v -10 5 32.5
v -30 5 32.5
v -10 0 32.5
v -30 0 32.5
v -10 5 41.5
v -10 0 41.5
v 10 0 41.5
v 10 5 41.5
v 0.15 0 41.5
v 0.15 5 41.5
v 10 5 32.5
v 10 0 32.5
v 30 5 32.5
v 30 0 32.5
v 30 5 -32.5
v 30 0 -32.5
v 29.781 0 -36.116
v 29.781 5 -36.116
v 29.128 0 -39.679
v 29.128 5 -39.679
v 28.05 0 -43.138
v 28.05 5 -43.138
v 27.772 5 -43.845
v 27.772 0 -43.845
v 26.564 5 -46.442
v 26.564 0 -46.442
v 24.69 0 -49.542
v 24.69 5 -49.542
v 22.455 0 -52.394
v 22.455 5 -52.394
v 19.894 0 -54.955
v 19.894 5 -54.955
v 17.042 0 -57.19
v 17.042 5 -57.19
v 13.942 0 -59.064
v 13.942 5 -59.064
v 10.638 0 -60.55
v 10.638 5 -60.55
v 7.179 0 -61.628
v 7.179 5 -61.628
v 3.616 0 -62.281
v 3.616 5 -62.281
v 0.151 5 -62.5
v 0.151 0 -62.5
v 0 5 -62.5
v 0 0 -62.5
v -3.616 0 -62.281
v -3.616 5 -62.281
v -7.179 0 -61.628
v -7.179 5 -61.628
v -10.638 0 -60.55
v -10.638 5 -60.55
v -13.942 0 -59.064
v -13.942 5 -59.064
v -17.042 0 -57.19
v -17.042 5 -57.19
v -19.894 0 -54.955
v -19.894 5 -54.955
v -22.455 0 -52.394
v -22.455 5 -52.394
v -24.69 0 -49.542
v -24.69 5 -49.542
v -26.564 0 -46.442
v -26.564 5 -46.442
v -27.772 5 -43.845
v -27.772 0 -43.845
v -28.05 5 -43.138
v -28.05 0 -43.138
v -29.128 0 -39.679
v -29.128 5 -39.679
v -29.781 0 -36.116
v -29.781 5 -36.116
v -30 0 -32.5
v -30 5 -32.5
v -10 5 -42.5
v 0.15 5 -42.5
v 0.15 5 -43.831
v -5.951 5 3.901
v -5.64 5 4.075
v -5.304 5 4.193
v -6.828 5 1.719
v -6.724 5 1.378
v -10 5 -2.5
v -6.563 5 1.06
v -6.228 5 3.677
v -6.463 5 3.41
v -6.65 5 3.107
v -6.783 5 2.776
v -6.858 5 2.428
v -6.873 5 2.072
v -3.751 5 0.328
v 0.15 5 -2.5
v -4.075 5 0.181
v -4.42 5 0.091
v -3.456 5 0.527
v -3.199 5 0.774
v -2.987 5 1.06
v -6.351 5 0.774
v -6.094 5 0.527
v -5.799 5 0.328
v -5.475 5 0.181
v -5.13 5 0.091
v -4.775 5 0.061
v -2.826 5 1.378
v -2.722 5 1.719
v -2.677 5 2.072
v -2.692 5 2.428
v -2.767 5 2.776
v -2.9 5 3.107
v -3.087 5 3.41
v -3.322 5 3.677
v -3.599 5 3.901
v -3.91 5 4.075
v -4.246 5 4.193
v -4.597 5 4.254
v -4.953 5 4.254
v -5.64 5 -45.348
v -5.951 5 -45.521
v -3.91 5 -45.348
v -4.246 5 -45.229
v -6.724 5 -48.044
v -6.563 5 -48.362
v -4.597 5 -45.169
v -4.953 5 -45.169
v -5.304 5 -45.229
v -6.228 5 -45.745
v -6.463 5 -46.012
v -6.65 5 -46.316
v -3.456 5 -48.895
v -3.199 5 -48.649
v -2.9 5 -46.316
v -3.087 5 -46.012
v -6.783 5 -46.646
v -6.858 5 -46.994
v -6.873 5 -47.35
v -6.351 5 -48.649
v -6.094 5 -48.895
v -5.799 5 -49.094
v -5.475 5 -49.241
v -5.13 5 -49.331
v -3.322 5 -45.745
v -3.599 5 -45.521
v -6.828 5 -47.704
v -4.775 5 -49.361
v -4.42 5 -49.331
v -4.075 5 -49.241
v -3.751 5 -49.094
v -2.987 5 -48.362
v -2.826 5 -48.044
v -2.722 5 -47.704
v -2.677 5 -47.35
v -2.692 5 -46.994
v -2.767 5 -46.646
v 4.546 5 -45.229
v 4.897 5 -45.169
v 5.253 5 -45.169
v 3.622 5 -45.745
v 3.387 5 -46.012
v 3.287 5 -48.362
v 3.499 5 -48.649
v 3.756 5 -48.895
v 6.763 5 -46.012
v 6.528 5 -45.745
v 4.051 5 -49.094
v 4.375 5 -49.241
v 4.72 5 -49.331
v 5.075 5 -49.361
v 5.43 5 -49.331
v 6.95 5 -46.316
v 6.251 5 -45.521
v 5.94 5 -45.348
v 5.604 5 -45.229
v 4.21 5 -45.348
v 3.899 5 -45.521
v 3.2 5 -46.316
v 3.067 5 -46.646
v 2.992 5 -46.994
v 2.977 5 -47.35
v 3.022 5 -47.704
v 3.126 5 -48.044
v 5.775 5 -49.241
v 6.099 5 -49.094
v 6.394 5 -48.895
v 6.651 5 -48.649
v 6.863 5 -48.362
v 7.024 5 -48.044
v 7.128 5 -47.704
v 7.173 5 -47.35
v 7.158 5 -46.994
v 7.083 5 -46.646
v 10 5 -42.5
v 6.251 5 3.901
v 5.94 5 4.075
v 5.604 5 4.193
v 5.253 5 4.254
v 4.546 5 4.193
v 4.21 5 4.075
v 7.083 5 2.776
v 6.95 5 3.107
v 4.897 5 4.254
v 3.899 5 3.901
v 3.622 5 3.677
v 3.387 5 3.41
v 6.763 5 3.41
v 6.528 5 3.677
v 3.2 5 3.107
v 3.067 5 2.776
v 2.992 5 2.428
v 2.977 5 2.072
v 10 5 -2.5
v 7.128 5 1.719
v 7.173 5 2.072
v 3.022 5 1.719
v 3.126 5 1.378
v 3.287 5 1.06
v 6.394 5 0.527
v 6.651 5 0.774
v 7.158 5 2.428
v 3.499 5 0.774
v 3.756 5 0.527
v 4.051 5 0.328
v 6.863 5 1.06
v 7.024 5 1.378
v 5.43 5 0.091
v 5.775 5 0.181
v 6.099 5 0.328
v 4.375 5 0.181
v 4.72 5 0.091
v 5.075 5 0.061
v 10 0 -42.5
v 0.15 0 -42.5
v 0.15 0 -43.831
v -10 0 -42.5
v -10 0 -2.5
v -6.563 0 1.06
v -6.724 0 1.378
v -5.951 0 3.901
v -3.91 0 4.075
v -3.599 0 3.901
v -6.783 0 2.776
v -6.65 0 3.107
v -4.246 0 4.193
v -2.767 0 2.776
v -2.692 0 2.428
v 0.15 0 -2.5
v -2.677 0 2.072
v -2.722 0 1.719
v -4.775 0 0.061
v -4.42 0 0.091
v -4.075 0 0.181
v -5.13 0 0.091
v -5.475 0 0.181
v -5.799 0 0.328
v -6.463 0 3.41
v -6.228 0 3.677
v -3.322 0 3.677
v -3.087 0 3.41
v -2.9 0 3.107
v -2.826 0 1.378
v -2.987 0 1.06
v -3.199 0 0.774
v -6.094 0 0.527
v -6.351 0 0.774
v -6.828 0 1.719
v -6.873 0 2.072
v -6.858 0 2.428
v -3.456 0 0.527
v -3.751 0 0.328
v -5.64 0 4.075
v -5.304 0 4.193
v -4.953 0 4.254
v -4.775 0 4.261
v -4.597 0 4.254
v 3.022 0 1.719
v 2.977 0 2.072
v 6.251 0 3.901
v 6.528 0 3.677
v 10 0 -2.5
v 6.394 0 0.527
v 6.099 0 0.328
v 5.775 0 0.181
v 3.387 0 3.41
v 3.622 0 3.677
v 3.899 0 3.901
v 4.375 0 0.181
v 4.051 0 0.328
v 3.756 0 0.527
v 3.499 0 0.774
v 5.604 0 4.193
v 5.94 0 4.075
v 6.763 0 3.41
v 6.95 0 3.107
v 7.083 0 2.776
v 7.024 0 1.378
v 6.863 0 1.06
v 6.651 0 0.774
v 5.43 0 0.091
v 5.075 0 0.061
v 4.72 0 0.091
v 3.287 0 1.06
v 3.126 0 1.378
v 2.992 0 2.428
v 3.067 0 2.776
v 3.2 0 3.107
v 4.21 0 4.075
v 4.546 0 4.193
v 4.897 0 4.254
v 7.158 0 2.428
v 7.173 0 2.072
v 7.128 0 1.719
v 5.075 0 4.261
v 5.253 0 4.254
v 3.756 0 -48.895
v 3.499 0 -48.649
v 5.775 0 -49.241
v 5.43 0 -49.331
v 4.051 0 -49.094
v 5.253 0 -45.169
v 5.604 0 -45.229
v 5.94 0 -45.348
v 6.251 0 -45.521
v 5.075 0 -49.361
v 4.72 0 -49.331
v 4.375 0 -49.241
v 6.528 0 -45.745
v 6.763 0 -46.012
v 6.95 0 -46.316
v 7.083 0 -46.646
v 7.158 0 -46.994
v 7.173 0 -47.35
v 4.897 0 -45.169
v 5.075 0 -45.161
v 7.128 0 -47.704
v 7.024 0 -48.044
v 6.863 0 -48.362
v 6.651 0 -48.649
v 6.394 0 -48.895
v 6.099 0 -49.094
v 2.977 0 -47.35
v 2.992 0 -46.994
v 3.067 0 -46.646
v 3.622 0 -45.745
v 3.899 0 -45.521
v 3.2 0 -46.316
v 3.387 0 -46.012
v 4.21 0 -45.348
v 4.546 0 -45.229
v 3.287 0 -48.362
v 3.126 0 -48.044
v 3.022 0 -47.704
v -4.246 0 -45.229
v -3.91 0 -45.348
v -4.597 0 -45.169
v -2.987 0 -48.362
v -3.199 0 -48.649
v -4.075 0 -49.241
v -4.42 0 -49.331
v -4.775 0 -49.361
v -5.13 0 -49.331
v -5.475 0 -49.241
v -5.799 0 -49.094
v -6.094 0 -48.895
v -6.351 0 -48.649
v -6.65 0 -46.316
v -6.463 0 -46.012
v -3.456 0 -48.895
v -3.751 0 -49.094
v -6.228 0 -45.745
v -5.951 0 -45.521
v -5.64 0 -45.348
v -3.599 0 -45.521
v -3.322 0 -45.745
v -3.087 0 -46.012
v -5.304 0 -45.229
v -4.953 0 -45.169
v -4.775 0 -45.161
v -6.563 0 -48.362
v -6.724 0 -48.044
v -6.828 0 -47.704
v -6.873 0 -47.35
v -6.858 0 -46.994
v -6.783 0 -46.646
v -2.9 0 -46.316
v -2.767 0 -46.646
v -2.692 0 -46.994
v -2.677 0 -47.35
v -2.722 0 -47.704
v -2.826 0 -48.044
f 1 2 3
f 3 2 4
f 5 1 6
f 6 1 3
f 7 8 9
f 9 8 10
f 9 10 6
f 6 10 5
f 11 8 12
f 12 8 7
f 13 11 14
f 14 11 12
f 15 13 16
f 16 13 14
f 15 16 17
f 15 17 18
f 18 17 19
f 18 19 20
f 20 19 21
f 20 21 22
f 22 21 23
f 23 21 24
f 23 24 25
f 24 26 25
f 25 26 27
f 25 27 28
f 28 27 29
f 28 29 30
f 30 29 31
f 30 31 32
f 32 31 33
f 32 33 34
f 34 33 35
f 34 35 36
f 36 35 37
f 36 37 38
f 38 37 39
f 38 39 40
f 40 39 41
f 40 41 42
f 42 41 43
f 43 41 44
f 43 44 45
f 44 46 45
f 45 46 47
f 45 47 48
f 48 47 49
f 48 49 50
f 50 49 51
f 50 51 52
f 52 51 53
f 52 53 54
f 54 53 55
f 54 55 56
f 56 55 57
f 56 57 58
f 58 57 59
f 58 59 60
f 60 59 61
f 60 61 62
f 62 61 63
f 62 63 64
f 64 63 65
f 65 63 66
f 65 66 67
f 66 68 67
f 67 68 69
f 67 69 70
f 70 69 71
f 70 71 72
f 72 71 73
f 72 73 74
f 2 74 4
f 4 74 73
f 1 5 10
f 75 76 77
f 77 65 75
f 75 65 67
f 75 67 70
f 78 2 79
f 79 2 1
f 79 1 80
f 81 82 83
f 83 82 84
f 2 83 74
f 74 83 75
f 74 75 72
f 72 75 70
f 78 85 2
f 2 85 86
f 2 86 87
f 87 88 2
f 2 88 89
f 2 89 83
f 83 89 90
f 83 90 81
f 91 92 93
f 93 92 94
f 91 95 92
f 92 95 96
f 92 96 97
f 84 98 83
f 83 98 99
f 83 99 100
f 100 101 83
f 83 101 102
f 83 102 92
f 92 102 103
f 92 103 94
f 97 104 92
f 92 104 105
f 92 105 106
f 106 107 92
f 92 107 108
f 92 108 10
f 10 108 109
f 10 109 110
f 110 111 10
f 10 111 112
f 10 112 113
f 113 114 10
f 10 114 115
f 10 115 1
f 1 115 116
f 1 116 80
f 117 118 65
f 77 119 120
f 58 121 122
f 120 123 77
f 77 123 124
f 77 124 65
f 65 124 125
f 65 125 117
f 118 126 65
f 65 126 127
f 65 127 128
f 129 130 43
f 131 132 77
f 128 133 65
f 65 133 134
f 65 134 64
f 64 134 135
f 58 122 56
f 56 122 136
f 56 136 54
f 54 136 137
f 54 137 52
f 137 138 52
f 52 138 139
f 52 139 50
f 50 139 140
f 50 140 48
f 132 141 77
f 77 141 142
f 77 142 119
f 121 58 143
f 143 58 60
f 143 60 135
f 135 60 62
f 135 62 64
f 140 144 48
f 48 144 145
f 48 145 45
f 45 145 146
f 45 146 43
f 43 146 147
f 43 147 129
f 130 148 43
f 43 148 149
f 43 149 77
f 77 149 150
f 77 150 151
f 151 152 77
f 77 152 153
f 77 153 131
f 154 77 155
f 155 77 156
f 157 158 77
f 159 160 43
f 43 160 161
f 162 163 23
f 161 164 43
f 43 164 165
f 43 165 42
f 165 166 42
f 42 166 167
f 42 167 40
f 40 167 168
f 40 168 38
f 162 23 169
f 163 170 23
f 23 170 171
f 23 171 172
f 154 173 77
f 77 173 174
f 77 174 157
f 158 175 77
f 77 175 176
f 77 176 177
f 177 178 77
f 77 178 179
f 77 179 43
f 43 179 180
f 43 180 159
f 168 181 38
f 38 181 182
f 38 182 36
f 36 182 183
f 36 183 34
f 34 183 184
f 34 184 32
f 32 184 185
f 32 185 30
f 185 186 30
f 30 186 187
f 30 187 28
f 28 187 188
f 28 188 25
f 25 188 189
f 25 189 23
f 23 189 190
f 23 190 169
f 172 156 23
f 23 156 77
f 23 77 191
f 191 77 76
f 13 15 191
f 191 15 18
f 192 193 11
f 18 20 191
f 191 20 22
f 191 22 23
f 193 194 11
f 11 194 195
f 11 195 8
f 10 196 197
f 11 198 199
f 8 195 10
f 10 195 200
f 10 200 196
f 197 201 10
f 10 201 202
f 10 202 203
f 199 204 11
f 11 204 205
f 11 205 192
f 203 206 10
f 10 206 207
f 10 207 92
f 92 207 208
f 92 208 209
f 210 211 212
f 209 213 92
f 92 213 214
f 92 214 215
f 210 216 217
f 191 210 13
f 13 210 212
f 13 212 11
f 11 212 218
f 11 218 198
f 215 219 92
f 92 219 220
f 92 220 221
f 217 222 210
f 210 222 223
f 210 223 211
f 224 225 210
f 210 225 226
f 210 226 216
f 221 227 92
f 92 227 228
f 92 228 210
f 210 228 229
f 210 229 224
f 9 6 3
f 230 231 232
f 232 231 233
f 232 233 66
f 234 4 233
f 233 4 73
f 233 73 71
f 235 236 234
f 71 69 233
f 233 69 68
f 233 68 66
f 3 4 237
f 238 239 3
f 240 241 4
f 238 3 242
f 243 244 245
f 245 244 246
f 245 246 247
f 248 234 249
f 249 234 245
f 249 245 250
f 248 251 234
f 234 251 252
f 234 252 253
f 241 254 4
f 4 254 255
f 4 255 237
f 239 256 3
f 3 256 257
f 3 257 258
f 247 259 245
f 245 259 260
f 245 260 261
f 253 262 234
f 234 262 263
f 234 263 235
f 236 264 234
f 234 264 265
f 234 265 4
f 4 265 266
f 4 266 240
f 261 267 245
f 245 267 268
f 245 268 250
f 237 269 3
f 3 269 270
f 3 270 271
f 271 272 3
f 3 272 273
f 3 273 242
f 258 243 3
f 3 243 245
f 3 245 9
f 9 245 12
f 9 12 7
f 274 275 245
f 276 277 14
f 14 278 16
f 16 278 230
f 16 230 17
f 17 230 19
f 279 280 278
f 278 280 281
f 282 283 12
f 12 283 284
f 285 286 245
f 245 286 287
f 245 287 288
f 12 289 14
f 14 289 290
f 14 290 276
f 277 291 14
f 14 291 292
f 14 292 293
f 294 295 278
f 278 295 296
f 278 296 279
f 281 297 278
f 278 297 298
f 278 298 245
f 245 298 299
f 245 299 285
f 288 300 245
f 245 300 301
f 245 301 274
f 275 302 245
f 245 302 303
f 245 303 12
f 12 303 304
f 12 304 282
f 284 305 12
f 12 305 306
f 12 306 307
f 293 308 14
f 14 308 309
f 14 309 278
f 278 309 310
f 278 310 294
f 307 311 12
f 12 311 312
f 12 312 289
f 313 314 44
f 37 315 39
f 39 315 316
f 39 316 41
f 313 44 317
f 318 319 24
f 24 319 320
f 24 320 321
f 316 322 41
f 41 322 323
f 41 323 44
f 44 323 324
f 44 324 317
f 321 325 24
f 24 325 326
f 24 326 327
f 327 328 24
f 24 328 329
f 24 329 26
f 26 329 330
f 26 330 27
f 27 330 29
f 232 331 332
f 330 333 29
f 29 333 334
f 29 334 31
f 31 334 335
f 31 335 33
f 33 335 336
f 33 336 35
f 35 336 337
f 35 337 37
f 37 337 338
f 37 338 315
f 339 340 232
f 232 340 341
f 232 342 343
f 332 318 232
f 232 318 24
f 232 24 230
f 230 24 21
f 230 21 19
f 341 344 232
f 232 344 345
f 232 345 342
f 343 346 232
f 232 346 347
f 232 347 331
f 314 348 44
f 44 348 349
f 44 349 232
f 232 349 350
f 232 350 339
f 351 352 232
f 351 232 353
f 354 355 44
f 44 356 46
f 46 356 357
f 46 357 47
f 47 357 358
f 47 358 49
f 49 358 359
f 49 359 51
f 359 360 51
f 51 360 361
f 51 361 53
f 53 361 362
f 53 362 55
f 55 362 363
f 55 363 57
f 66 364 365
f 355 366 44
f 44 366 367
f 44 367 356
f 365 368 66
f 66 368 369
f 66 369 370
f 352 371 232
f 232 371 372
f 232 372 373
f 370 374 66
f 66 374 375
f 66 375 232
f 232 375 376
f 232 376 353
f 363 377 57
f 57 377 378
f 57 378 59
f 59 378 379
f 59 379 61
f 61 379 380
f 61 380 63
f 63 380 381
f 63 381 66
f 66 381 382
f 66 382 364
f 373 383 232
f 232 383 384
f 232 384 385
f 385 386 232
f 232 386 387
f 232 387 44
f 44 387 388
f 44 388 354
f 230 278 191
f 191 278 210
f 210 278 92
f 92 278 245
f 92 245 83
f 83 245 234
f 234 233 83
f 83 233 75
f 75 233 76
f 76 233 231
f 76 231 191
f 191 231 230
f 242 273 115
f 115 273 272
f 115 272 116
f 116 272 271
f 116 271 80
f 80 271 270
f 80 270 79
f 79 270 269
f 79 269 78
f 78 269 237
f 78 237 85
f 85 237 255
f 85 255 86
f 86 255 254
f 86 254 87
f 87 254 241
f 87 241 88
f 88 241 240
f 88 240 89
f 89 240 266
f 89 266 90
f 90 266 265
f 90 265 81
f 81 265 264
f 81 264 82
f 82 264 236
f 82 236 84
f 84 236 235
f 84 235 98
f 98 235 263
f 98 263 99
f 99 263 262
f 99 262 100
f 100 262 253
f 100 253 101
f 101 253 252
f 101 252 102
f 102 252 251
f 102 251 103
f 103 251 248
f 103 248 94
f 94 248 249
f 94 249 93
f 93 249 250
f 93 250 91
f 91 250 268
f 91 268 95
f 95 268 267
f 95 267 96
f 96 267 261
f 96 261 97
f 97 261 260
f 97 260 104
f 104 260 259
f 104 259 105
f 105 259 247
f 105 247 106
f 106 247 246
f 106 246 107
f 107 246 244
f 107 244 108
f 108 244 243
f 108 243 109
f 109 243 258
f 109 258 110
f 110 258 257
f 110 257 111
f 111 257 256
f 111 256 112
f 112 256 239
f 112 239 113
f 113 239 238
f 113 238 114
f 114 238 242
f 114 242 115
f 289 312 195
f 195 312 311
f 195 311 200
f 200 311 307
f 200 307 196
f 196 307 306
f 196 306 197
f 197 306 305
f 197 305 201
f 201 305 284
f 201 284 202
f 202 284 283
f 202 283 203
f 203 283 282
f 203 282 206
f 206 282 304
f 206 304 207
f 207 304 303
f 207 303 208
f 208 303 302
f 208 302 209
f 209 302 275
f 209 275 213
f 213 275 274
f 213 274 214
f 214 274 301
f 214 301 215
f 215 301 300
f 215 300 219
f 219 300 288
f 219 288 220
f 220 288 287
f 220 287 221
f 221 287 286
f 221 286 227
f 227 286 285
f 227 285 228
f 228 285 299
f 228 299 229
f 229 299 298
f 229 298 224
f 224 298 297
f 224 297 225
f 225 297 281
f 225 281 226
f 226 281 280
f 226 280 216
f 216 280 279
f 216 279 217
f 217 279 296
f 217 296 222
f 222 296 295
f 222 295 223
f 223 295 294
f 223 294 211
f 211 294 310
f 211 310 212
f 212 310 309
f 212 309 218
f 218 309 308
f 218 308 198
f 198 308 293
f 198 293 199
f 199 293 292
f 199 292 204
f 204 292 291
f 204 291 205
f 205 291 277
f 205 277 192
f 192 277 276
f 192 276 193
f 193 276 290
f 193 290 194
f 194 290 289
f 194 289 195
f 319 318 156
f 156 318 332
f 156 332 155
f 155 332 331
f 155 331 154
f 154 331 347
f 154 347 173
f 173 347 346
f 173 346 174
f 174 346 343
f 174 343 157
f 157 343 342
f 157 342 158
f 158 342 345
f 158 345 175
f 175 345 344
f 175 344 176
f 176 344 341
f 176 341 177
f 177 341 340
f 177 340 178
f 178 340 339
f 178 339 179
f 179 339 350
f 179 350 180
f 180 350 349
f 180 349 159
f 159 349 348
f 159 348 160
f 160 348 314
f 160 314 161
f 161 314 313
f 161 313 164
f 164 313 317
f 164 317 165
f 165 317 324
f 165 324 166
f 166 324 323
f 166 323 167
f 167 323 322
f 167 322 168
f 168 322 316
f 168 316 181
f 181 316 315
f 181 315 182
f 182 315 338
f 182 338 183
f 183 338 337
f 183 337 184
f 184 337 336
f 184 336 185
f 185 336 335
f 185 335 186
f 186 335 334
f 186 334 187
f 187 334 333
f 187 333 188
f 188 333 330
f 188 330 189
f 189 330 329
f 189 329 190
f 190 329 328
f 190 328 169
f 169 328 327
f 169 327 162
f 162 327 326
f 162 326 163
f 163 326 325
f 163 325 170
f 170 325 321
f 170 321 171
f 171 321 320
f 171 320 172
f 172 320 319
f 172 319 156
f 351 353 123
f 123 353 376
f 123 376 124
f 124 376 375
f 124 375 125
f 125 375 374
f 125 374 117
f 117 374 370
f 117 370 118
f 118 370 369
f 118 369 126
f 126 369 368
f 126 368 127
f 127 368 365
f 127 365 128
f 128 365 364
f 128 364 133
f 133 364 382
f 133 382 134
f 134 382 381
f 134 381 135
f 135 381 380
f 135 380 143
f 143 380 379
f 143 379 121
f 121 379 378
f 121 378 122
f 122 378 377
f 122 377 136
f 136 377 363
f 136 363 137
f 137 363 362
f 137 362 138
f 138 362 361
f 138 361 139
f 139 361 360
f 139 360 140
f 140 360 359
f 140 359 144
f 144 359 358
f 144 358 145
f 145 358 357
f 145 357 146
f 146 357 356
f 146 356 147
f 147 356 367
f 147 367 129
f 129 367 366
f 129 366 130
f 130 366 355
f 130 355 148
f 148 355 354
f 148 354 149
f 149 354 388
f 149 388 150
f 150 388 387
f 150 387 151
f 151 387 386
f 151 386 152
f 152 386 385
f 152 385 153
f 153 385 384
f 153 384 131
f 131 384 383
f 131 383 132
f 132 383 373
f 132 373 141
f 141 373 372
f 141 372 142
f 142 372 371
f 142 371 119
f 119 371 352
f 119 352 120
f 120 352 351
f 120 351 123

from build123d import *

# Parameters (mm, degrees)
SKETCH1_W               = 60
SKETCH1_H               = 65
SKETCH1_W_2             = 20
SKETCH1_H_2             = 9
BOSS_EXTRUDE1_DEPTH     = 5
SKETCH2_W               = 20
SKETCH2_H               = 40
CUT_EXTRUDE1_DEPTH      = 6
SKETCH3_R               = 2.1
CUT_EXTRUDE2_DEPTH      = 1
CUT_EXTRUDE2_DEPTH_BACK = 6


with BuildPart() as part:
    # Sketch1 → Boss-Extrude1 (new body)
    with BuildSketch(Plane(origin=(0, 0, 0), x_dir=(1, 0, 0), z_dir=(0, 1, 0))):
        Rectangle(SKETCH1_W, SKETCH1_H)
        with Locations((0, -37)):
            Rectangle(SKETCH1_W_2, SKETCH1_H_2)
        with BuildLine():
            Line((-30, 32.5), (30, 32.5))
            ThreePointArc((30, 32.5), (0, 62.5), (-30, 32.5))
        make_face()
    extrude(amount=BOSS_EXTRUDE1_DEPTH)

    # Sketch2 → Cut-Extrude1 (cut, through all)
    with BuildSketch(Plane(origin=(0, 5, 0), x_dir=(1, 0, 0), z_dir=(0, 1, 0))):
        with Locations((0, 22.5)):
            Rectangle(SKETCH2_W, SKETCH2_H)
    extrude(amount=-CUT_EXTRUDE1_DEPTH, mode=Mode.SUBTRACT)

    # Sketch3 → Cut-Extrude2 (cut, two sides)
    with BuildSketch(Plane.XZ) as cut_extrude2_sk:
        with Locations((-4.775, 2.161145618)):
            Circle(SKETCH3_R)
        with Locations((5.075, 2.161145618)):
            Circle(SKETCH3_R)
        with Locations((5.075, -47.261145618)):
            Circle(SKETCH3_R)
        with Locations((-4.775, -47.261145618)):
            Circle(SKETCH3_R)
    extrude(amount=CUT_EXTRUDE2_DEPTH, mode=Mode.SUBTRACT)
    extrude(cut_extrude2_sk.sketch, amount=-CUT_EXTRUDE2_DEPTH_BACK, mode=Mode.SUBTRACT)


solid = part.part
